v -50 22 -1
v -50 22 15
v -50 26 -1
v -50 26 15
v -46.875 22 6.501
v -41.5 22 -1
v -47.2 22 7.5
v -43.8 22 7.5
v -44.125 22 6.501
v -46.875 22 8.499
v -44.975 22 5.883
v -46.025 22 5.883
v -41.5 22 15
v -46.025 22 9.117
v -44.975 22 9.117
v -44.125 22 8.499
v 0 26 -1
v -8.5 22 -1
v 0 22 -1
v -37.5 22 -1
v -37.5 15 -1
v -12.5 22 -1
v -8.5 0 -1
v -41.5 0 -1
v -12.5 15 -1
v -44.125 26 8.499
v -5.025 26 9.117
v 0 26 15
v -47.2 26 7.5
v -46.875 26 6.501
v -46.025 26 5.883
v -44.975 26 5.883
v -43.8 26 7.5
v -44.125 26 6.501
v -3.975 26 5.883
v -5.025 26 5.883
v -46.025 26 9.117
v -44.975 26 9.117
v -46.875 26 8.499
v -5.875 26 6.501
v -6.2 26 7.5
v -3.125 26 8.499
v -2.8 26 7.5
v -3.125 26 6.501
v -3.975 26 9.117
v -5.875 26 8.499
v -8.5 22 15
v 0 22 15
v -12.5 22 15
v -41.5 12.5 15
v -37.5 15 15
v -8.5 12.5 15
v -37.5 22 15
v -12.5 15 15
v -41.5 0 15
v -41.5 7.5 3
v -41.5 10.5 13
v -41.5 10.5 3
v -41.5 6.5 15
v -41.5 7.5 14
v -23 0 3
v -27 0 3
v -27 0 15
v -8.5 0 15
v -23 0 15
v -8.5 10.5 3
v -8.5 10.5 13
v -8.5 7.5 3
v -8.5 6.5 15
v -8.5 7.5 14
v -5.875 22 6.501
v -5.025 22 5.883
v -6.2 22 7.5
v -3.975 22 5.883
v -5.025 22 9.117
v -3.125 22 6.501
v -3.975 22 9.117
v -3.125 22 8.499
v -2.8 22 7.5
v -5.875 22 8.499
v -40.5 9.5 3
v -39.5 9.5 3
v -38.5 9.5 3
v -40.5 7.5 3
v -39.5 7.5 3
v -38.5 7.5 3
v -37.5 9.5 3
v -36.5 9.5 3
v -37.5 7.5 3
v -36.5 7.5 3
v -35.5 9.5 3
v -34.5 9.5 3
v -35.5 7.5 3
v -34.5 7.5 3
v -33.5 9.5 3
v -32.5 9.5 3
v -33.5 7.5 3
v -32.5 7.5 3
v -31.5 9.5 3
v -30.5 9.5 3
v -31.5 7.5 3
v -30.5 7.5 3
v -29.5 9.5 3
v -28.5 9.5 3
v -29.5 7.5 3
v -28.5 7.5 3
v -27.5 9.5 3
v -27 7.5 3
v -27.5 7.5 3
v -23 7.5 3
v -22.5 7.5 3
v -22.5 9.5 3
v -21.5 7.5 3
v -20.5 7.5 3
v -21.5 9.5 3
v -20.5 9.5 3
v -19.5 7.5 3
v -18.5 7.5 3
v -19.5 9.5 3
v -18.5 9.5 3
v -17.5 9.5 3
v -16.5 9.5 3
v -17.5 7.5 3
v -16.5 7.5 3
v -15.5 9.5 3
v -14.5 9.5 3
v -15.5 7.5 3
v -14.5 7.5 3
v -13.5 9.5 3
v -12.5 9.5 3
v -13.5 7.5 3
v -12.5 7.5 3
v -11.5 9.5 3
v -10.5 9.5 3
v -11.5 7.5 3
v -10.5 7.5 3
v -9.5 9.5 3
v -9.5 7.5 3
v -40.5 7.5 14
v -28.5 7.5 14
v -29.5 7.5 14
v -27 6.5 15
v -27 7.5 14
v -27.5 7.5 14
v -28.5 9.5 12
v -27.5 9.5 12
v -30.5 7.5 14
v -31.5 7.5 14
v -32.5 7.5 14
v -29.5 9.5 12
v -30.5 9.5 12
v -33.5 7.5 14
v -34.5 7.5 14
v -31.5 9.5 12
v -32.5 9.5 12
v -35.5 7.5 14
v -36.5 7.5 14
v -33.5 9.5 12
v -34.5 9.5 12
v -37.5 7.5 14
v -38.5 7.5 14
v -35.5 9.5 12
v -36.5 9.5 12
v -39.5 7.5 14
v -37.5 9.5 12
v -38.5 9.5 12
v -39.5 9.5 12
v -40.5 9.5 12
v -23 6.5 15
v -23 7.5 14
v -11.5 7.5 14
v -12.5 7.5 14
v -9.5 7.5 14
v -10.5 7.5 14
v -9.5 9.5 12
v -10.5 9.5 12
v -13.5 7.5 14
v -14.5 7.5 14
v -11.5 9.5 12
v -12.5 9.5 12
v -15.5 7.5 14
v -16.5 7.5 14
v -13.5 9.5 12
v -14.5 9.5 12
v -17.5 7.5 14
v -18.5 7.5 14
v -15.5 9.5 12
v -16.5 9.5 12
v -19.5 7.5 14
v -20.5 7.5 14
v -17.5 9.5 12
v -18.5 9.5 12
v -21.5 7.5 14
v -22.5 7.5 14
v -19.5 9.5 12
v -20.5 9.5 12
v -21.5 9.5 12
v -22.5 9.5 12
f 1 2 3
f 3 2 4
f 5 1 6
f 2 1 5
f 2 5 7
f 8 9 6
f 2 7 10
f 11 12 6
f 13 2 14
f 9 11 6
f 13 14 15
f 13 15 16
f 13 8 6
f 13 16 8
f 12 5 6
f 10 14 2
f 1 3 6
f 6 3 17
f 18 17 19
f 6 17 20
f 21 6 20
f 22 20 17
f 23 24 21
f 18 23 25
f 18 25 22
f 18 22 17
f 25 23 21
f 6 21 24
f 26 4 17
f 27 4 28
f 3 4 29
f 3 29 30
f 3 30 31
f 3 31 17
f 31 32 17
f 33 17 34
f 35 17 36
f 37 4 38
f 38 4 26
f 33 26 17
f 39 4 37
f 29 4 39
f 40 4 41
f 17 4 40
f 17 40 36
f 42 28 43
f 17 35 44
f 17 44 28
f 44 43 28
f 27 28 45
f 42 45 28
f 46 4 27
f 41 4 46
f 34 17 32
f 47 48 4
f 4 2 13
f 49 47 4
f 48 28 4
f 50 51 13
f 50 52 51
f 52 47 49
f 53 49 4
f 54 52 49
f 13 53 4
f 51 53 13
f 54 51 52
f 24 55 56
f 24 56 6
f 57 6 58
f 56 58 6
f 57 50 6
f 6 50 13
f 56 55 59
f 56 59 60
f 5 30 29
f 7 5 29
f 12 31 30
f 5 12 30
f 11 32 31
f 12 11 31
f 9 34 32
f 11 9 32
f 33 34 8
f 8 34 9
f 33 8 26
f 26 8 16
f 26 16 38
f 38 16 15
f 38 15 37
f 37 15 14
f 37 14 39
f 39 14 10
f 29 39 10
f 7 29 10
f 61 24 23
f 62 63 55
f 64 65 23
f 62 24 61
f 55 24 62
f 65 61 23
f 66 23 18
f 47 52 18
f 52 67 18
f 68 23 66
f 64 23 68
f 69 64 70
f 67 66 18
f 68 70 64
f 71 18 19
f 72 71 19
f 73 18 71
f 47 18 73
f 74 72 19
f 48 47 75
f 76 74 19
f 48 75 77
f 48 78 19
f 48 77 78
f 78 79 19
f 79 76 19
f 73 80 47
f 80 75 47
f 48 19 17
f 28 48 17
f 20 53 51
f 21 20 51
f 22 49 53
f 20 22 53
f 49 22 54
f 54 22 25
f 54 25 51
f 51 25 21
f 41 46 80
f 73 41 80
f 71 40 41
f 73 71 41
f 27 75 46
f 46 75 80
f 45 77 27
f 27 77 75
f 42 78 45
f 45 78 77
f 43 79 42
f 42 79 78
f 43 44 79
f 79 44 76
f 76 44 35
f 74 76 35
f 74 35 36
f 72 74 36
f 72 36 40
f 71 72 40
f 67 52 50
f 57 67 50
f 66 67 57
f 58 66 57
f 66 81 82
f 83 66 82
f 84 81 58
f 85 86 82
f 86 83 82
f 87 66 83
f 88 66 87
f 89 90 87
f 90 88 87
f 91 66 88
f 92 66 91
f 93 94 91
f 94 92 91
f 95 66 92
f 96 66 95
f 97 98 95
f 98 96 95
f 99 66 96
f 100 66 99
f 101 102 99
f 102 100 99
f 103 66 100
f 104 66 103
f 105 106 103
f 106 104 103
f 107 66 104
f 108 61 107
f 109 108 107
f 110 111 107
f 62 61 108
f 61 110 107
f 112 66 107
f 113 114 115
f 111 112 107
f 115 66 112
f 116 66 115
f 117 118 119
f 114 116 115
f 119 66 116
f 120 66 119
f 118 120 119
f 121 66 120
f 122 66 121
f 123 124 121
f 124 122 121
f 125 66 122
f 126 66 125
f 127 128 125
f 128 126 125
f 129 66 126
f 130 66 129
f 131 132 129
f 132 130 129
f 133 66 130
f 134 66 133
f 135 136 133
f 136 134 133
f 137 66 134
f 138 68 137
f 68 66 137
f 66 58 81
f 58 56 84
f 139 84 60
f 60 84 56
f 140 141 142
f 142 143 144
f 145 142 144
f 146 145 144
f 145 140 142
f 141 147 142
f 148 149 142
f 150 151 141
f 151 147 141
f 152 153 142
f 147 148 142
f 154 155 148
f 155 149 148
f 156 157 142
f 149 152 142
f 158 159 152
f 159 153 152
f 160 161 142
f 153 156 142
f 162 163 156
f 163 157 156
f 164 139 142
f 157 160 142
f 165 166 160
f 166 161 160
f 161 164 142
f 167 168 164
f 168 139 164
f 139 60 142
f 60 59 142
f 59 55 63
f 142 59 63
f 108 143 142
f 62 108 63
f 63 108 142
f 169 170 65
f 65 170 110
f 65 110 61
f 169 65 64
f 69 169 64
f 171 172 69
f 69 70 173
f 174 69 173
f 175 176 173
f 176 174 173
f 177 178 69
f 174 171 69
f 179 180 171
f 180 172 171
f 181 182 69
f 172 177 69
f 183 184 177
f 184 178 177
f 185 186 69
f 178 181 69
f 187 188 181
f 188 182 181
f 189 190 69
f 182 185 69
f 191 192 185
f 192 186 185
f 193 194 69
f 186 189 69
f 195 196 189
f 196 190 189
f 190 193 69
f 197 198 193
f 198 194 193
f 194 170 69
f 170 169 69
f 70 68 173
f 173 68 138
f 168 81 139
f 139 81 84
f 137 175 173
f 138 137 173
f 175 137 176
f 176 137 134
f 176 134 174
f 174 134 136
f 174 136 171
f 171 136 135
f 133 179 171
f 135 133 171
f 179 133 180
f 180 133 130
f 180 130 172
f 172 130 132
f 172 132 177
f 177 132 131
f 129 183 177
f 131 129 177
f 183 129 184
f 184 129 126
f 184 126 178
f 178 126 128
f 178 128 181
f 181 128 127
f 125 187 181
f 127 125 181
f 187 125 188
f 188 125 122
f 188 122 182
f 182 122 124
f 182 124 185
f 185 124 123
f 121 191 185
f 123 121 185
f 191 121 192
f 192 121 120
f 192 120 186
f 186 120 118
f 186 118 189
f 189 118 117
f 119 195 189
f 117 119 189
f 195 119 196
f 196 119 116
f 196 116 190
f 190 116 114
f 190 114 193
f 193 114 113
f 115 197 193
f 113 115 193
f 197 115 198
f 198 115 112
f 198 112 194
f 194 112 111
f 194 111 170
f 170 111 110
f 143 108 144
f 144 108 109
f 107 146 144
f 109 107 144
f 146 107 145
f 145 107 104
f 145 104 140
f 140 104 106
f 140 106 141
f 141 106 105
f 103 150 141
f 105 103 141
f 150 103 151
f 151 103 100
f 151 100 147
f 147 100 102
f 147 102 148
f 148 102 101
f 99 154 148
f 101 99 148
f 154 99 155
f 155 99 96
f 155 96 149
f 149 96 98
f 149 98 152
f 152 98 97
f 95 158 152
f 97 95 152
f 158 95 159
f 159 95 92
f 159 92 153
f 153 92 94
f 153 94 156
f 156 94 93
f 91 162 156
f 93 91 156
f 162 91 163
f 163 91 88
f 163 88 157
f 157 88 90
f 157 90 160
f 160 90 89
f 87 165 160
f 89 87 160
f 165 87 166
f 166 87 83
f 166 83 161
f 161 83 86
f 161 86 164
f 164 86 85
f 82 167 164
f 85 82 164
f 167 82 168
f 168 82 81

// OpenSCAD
// PRUSA iteration3
// Y belt holder
// GNU GPL v3
// Josef Průša <iam@josefprusa.cz> and contributors
// http://www.reprap.org/wiki/Prusa_Mendel
// http://prusamendel.org


module belt_holder_base(){
 translate([-33-8.5,0,-1]) cube([33,15,16]); 
 translate([-33-8.5,11,-1]) cube([33,15,16]);
 translate([-50,22,-1]) cube([50,4,16]);	
}

module belt_holder_beltcut(){
 position_tweak=0.5;
 // Belt slit
 translate([-66,-0.5+10,3]) cube([67,1,15]);
 // Smooth insert cutout
 translate([-66,-0.5+10,12]) rotate([45,0,0]) cube([67,15,15]);
 // Individual teeth
 for ( i = [0 : 23] ){
  translate([0-i*2+position_tweak,-0.5+8,3]) cube([1,3,15]);
 }
 // Middle opening
 translate([-2-25,-1,3]) cube([4,11,15]);	
}

module belt_holder_holes(){
 translate([-4.5,0,7.5]) rotate([-90,0,0]) cylinder(h=30, r=1.7, $fn=10);
 translate([-45.5,0,7.5]) rotate([-90,0,0]) cylinder(h=30, r=1.7, $fn=10);
 translate([-33-8.5+4,15,-1]) cube([25,7,16]);
}

// Final part
module belt_holder(){
 difference(){
  belt_holder_base();
  belt_holder_beltcut();
  belt_holder_holes();
 }
}

belt_holder();
